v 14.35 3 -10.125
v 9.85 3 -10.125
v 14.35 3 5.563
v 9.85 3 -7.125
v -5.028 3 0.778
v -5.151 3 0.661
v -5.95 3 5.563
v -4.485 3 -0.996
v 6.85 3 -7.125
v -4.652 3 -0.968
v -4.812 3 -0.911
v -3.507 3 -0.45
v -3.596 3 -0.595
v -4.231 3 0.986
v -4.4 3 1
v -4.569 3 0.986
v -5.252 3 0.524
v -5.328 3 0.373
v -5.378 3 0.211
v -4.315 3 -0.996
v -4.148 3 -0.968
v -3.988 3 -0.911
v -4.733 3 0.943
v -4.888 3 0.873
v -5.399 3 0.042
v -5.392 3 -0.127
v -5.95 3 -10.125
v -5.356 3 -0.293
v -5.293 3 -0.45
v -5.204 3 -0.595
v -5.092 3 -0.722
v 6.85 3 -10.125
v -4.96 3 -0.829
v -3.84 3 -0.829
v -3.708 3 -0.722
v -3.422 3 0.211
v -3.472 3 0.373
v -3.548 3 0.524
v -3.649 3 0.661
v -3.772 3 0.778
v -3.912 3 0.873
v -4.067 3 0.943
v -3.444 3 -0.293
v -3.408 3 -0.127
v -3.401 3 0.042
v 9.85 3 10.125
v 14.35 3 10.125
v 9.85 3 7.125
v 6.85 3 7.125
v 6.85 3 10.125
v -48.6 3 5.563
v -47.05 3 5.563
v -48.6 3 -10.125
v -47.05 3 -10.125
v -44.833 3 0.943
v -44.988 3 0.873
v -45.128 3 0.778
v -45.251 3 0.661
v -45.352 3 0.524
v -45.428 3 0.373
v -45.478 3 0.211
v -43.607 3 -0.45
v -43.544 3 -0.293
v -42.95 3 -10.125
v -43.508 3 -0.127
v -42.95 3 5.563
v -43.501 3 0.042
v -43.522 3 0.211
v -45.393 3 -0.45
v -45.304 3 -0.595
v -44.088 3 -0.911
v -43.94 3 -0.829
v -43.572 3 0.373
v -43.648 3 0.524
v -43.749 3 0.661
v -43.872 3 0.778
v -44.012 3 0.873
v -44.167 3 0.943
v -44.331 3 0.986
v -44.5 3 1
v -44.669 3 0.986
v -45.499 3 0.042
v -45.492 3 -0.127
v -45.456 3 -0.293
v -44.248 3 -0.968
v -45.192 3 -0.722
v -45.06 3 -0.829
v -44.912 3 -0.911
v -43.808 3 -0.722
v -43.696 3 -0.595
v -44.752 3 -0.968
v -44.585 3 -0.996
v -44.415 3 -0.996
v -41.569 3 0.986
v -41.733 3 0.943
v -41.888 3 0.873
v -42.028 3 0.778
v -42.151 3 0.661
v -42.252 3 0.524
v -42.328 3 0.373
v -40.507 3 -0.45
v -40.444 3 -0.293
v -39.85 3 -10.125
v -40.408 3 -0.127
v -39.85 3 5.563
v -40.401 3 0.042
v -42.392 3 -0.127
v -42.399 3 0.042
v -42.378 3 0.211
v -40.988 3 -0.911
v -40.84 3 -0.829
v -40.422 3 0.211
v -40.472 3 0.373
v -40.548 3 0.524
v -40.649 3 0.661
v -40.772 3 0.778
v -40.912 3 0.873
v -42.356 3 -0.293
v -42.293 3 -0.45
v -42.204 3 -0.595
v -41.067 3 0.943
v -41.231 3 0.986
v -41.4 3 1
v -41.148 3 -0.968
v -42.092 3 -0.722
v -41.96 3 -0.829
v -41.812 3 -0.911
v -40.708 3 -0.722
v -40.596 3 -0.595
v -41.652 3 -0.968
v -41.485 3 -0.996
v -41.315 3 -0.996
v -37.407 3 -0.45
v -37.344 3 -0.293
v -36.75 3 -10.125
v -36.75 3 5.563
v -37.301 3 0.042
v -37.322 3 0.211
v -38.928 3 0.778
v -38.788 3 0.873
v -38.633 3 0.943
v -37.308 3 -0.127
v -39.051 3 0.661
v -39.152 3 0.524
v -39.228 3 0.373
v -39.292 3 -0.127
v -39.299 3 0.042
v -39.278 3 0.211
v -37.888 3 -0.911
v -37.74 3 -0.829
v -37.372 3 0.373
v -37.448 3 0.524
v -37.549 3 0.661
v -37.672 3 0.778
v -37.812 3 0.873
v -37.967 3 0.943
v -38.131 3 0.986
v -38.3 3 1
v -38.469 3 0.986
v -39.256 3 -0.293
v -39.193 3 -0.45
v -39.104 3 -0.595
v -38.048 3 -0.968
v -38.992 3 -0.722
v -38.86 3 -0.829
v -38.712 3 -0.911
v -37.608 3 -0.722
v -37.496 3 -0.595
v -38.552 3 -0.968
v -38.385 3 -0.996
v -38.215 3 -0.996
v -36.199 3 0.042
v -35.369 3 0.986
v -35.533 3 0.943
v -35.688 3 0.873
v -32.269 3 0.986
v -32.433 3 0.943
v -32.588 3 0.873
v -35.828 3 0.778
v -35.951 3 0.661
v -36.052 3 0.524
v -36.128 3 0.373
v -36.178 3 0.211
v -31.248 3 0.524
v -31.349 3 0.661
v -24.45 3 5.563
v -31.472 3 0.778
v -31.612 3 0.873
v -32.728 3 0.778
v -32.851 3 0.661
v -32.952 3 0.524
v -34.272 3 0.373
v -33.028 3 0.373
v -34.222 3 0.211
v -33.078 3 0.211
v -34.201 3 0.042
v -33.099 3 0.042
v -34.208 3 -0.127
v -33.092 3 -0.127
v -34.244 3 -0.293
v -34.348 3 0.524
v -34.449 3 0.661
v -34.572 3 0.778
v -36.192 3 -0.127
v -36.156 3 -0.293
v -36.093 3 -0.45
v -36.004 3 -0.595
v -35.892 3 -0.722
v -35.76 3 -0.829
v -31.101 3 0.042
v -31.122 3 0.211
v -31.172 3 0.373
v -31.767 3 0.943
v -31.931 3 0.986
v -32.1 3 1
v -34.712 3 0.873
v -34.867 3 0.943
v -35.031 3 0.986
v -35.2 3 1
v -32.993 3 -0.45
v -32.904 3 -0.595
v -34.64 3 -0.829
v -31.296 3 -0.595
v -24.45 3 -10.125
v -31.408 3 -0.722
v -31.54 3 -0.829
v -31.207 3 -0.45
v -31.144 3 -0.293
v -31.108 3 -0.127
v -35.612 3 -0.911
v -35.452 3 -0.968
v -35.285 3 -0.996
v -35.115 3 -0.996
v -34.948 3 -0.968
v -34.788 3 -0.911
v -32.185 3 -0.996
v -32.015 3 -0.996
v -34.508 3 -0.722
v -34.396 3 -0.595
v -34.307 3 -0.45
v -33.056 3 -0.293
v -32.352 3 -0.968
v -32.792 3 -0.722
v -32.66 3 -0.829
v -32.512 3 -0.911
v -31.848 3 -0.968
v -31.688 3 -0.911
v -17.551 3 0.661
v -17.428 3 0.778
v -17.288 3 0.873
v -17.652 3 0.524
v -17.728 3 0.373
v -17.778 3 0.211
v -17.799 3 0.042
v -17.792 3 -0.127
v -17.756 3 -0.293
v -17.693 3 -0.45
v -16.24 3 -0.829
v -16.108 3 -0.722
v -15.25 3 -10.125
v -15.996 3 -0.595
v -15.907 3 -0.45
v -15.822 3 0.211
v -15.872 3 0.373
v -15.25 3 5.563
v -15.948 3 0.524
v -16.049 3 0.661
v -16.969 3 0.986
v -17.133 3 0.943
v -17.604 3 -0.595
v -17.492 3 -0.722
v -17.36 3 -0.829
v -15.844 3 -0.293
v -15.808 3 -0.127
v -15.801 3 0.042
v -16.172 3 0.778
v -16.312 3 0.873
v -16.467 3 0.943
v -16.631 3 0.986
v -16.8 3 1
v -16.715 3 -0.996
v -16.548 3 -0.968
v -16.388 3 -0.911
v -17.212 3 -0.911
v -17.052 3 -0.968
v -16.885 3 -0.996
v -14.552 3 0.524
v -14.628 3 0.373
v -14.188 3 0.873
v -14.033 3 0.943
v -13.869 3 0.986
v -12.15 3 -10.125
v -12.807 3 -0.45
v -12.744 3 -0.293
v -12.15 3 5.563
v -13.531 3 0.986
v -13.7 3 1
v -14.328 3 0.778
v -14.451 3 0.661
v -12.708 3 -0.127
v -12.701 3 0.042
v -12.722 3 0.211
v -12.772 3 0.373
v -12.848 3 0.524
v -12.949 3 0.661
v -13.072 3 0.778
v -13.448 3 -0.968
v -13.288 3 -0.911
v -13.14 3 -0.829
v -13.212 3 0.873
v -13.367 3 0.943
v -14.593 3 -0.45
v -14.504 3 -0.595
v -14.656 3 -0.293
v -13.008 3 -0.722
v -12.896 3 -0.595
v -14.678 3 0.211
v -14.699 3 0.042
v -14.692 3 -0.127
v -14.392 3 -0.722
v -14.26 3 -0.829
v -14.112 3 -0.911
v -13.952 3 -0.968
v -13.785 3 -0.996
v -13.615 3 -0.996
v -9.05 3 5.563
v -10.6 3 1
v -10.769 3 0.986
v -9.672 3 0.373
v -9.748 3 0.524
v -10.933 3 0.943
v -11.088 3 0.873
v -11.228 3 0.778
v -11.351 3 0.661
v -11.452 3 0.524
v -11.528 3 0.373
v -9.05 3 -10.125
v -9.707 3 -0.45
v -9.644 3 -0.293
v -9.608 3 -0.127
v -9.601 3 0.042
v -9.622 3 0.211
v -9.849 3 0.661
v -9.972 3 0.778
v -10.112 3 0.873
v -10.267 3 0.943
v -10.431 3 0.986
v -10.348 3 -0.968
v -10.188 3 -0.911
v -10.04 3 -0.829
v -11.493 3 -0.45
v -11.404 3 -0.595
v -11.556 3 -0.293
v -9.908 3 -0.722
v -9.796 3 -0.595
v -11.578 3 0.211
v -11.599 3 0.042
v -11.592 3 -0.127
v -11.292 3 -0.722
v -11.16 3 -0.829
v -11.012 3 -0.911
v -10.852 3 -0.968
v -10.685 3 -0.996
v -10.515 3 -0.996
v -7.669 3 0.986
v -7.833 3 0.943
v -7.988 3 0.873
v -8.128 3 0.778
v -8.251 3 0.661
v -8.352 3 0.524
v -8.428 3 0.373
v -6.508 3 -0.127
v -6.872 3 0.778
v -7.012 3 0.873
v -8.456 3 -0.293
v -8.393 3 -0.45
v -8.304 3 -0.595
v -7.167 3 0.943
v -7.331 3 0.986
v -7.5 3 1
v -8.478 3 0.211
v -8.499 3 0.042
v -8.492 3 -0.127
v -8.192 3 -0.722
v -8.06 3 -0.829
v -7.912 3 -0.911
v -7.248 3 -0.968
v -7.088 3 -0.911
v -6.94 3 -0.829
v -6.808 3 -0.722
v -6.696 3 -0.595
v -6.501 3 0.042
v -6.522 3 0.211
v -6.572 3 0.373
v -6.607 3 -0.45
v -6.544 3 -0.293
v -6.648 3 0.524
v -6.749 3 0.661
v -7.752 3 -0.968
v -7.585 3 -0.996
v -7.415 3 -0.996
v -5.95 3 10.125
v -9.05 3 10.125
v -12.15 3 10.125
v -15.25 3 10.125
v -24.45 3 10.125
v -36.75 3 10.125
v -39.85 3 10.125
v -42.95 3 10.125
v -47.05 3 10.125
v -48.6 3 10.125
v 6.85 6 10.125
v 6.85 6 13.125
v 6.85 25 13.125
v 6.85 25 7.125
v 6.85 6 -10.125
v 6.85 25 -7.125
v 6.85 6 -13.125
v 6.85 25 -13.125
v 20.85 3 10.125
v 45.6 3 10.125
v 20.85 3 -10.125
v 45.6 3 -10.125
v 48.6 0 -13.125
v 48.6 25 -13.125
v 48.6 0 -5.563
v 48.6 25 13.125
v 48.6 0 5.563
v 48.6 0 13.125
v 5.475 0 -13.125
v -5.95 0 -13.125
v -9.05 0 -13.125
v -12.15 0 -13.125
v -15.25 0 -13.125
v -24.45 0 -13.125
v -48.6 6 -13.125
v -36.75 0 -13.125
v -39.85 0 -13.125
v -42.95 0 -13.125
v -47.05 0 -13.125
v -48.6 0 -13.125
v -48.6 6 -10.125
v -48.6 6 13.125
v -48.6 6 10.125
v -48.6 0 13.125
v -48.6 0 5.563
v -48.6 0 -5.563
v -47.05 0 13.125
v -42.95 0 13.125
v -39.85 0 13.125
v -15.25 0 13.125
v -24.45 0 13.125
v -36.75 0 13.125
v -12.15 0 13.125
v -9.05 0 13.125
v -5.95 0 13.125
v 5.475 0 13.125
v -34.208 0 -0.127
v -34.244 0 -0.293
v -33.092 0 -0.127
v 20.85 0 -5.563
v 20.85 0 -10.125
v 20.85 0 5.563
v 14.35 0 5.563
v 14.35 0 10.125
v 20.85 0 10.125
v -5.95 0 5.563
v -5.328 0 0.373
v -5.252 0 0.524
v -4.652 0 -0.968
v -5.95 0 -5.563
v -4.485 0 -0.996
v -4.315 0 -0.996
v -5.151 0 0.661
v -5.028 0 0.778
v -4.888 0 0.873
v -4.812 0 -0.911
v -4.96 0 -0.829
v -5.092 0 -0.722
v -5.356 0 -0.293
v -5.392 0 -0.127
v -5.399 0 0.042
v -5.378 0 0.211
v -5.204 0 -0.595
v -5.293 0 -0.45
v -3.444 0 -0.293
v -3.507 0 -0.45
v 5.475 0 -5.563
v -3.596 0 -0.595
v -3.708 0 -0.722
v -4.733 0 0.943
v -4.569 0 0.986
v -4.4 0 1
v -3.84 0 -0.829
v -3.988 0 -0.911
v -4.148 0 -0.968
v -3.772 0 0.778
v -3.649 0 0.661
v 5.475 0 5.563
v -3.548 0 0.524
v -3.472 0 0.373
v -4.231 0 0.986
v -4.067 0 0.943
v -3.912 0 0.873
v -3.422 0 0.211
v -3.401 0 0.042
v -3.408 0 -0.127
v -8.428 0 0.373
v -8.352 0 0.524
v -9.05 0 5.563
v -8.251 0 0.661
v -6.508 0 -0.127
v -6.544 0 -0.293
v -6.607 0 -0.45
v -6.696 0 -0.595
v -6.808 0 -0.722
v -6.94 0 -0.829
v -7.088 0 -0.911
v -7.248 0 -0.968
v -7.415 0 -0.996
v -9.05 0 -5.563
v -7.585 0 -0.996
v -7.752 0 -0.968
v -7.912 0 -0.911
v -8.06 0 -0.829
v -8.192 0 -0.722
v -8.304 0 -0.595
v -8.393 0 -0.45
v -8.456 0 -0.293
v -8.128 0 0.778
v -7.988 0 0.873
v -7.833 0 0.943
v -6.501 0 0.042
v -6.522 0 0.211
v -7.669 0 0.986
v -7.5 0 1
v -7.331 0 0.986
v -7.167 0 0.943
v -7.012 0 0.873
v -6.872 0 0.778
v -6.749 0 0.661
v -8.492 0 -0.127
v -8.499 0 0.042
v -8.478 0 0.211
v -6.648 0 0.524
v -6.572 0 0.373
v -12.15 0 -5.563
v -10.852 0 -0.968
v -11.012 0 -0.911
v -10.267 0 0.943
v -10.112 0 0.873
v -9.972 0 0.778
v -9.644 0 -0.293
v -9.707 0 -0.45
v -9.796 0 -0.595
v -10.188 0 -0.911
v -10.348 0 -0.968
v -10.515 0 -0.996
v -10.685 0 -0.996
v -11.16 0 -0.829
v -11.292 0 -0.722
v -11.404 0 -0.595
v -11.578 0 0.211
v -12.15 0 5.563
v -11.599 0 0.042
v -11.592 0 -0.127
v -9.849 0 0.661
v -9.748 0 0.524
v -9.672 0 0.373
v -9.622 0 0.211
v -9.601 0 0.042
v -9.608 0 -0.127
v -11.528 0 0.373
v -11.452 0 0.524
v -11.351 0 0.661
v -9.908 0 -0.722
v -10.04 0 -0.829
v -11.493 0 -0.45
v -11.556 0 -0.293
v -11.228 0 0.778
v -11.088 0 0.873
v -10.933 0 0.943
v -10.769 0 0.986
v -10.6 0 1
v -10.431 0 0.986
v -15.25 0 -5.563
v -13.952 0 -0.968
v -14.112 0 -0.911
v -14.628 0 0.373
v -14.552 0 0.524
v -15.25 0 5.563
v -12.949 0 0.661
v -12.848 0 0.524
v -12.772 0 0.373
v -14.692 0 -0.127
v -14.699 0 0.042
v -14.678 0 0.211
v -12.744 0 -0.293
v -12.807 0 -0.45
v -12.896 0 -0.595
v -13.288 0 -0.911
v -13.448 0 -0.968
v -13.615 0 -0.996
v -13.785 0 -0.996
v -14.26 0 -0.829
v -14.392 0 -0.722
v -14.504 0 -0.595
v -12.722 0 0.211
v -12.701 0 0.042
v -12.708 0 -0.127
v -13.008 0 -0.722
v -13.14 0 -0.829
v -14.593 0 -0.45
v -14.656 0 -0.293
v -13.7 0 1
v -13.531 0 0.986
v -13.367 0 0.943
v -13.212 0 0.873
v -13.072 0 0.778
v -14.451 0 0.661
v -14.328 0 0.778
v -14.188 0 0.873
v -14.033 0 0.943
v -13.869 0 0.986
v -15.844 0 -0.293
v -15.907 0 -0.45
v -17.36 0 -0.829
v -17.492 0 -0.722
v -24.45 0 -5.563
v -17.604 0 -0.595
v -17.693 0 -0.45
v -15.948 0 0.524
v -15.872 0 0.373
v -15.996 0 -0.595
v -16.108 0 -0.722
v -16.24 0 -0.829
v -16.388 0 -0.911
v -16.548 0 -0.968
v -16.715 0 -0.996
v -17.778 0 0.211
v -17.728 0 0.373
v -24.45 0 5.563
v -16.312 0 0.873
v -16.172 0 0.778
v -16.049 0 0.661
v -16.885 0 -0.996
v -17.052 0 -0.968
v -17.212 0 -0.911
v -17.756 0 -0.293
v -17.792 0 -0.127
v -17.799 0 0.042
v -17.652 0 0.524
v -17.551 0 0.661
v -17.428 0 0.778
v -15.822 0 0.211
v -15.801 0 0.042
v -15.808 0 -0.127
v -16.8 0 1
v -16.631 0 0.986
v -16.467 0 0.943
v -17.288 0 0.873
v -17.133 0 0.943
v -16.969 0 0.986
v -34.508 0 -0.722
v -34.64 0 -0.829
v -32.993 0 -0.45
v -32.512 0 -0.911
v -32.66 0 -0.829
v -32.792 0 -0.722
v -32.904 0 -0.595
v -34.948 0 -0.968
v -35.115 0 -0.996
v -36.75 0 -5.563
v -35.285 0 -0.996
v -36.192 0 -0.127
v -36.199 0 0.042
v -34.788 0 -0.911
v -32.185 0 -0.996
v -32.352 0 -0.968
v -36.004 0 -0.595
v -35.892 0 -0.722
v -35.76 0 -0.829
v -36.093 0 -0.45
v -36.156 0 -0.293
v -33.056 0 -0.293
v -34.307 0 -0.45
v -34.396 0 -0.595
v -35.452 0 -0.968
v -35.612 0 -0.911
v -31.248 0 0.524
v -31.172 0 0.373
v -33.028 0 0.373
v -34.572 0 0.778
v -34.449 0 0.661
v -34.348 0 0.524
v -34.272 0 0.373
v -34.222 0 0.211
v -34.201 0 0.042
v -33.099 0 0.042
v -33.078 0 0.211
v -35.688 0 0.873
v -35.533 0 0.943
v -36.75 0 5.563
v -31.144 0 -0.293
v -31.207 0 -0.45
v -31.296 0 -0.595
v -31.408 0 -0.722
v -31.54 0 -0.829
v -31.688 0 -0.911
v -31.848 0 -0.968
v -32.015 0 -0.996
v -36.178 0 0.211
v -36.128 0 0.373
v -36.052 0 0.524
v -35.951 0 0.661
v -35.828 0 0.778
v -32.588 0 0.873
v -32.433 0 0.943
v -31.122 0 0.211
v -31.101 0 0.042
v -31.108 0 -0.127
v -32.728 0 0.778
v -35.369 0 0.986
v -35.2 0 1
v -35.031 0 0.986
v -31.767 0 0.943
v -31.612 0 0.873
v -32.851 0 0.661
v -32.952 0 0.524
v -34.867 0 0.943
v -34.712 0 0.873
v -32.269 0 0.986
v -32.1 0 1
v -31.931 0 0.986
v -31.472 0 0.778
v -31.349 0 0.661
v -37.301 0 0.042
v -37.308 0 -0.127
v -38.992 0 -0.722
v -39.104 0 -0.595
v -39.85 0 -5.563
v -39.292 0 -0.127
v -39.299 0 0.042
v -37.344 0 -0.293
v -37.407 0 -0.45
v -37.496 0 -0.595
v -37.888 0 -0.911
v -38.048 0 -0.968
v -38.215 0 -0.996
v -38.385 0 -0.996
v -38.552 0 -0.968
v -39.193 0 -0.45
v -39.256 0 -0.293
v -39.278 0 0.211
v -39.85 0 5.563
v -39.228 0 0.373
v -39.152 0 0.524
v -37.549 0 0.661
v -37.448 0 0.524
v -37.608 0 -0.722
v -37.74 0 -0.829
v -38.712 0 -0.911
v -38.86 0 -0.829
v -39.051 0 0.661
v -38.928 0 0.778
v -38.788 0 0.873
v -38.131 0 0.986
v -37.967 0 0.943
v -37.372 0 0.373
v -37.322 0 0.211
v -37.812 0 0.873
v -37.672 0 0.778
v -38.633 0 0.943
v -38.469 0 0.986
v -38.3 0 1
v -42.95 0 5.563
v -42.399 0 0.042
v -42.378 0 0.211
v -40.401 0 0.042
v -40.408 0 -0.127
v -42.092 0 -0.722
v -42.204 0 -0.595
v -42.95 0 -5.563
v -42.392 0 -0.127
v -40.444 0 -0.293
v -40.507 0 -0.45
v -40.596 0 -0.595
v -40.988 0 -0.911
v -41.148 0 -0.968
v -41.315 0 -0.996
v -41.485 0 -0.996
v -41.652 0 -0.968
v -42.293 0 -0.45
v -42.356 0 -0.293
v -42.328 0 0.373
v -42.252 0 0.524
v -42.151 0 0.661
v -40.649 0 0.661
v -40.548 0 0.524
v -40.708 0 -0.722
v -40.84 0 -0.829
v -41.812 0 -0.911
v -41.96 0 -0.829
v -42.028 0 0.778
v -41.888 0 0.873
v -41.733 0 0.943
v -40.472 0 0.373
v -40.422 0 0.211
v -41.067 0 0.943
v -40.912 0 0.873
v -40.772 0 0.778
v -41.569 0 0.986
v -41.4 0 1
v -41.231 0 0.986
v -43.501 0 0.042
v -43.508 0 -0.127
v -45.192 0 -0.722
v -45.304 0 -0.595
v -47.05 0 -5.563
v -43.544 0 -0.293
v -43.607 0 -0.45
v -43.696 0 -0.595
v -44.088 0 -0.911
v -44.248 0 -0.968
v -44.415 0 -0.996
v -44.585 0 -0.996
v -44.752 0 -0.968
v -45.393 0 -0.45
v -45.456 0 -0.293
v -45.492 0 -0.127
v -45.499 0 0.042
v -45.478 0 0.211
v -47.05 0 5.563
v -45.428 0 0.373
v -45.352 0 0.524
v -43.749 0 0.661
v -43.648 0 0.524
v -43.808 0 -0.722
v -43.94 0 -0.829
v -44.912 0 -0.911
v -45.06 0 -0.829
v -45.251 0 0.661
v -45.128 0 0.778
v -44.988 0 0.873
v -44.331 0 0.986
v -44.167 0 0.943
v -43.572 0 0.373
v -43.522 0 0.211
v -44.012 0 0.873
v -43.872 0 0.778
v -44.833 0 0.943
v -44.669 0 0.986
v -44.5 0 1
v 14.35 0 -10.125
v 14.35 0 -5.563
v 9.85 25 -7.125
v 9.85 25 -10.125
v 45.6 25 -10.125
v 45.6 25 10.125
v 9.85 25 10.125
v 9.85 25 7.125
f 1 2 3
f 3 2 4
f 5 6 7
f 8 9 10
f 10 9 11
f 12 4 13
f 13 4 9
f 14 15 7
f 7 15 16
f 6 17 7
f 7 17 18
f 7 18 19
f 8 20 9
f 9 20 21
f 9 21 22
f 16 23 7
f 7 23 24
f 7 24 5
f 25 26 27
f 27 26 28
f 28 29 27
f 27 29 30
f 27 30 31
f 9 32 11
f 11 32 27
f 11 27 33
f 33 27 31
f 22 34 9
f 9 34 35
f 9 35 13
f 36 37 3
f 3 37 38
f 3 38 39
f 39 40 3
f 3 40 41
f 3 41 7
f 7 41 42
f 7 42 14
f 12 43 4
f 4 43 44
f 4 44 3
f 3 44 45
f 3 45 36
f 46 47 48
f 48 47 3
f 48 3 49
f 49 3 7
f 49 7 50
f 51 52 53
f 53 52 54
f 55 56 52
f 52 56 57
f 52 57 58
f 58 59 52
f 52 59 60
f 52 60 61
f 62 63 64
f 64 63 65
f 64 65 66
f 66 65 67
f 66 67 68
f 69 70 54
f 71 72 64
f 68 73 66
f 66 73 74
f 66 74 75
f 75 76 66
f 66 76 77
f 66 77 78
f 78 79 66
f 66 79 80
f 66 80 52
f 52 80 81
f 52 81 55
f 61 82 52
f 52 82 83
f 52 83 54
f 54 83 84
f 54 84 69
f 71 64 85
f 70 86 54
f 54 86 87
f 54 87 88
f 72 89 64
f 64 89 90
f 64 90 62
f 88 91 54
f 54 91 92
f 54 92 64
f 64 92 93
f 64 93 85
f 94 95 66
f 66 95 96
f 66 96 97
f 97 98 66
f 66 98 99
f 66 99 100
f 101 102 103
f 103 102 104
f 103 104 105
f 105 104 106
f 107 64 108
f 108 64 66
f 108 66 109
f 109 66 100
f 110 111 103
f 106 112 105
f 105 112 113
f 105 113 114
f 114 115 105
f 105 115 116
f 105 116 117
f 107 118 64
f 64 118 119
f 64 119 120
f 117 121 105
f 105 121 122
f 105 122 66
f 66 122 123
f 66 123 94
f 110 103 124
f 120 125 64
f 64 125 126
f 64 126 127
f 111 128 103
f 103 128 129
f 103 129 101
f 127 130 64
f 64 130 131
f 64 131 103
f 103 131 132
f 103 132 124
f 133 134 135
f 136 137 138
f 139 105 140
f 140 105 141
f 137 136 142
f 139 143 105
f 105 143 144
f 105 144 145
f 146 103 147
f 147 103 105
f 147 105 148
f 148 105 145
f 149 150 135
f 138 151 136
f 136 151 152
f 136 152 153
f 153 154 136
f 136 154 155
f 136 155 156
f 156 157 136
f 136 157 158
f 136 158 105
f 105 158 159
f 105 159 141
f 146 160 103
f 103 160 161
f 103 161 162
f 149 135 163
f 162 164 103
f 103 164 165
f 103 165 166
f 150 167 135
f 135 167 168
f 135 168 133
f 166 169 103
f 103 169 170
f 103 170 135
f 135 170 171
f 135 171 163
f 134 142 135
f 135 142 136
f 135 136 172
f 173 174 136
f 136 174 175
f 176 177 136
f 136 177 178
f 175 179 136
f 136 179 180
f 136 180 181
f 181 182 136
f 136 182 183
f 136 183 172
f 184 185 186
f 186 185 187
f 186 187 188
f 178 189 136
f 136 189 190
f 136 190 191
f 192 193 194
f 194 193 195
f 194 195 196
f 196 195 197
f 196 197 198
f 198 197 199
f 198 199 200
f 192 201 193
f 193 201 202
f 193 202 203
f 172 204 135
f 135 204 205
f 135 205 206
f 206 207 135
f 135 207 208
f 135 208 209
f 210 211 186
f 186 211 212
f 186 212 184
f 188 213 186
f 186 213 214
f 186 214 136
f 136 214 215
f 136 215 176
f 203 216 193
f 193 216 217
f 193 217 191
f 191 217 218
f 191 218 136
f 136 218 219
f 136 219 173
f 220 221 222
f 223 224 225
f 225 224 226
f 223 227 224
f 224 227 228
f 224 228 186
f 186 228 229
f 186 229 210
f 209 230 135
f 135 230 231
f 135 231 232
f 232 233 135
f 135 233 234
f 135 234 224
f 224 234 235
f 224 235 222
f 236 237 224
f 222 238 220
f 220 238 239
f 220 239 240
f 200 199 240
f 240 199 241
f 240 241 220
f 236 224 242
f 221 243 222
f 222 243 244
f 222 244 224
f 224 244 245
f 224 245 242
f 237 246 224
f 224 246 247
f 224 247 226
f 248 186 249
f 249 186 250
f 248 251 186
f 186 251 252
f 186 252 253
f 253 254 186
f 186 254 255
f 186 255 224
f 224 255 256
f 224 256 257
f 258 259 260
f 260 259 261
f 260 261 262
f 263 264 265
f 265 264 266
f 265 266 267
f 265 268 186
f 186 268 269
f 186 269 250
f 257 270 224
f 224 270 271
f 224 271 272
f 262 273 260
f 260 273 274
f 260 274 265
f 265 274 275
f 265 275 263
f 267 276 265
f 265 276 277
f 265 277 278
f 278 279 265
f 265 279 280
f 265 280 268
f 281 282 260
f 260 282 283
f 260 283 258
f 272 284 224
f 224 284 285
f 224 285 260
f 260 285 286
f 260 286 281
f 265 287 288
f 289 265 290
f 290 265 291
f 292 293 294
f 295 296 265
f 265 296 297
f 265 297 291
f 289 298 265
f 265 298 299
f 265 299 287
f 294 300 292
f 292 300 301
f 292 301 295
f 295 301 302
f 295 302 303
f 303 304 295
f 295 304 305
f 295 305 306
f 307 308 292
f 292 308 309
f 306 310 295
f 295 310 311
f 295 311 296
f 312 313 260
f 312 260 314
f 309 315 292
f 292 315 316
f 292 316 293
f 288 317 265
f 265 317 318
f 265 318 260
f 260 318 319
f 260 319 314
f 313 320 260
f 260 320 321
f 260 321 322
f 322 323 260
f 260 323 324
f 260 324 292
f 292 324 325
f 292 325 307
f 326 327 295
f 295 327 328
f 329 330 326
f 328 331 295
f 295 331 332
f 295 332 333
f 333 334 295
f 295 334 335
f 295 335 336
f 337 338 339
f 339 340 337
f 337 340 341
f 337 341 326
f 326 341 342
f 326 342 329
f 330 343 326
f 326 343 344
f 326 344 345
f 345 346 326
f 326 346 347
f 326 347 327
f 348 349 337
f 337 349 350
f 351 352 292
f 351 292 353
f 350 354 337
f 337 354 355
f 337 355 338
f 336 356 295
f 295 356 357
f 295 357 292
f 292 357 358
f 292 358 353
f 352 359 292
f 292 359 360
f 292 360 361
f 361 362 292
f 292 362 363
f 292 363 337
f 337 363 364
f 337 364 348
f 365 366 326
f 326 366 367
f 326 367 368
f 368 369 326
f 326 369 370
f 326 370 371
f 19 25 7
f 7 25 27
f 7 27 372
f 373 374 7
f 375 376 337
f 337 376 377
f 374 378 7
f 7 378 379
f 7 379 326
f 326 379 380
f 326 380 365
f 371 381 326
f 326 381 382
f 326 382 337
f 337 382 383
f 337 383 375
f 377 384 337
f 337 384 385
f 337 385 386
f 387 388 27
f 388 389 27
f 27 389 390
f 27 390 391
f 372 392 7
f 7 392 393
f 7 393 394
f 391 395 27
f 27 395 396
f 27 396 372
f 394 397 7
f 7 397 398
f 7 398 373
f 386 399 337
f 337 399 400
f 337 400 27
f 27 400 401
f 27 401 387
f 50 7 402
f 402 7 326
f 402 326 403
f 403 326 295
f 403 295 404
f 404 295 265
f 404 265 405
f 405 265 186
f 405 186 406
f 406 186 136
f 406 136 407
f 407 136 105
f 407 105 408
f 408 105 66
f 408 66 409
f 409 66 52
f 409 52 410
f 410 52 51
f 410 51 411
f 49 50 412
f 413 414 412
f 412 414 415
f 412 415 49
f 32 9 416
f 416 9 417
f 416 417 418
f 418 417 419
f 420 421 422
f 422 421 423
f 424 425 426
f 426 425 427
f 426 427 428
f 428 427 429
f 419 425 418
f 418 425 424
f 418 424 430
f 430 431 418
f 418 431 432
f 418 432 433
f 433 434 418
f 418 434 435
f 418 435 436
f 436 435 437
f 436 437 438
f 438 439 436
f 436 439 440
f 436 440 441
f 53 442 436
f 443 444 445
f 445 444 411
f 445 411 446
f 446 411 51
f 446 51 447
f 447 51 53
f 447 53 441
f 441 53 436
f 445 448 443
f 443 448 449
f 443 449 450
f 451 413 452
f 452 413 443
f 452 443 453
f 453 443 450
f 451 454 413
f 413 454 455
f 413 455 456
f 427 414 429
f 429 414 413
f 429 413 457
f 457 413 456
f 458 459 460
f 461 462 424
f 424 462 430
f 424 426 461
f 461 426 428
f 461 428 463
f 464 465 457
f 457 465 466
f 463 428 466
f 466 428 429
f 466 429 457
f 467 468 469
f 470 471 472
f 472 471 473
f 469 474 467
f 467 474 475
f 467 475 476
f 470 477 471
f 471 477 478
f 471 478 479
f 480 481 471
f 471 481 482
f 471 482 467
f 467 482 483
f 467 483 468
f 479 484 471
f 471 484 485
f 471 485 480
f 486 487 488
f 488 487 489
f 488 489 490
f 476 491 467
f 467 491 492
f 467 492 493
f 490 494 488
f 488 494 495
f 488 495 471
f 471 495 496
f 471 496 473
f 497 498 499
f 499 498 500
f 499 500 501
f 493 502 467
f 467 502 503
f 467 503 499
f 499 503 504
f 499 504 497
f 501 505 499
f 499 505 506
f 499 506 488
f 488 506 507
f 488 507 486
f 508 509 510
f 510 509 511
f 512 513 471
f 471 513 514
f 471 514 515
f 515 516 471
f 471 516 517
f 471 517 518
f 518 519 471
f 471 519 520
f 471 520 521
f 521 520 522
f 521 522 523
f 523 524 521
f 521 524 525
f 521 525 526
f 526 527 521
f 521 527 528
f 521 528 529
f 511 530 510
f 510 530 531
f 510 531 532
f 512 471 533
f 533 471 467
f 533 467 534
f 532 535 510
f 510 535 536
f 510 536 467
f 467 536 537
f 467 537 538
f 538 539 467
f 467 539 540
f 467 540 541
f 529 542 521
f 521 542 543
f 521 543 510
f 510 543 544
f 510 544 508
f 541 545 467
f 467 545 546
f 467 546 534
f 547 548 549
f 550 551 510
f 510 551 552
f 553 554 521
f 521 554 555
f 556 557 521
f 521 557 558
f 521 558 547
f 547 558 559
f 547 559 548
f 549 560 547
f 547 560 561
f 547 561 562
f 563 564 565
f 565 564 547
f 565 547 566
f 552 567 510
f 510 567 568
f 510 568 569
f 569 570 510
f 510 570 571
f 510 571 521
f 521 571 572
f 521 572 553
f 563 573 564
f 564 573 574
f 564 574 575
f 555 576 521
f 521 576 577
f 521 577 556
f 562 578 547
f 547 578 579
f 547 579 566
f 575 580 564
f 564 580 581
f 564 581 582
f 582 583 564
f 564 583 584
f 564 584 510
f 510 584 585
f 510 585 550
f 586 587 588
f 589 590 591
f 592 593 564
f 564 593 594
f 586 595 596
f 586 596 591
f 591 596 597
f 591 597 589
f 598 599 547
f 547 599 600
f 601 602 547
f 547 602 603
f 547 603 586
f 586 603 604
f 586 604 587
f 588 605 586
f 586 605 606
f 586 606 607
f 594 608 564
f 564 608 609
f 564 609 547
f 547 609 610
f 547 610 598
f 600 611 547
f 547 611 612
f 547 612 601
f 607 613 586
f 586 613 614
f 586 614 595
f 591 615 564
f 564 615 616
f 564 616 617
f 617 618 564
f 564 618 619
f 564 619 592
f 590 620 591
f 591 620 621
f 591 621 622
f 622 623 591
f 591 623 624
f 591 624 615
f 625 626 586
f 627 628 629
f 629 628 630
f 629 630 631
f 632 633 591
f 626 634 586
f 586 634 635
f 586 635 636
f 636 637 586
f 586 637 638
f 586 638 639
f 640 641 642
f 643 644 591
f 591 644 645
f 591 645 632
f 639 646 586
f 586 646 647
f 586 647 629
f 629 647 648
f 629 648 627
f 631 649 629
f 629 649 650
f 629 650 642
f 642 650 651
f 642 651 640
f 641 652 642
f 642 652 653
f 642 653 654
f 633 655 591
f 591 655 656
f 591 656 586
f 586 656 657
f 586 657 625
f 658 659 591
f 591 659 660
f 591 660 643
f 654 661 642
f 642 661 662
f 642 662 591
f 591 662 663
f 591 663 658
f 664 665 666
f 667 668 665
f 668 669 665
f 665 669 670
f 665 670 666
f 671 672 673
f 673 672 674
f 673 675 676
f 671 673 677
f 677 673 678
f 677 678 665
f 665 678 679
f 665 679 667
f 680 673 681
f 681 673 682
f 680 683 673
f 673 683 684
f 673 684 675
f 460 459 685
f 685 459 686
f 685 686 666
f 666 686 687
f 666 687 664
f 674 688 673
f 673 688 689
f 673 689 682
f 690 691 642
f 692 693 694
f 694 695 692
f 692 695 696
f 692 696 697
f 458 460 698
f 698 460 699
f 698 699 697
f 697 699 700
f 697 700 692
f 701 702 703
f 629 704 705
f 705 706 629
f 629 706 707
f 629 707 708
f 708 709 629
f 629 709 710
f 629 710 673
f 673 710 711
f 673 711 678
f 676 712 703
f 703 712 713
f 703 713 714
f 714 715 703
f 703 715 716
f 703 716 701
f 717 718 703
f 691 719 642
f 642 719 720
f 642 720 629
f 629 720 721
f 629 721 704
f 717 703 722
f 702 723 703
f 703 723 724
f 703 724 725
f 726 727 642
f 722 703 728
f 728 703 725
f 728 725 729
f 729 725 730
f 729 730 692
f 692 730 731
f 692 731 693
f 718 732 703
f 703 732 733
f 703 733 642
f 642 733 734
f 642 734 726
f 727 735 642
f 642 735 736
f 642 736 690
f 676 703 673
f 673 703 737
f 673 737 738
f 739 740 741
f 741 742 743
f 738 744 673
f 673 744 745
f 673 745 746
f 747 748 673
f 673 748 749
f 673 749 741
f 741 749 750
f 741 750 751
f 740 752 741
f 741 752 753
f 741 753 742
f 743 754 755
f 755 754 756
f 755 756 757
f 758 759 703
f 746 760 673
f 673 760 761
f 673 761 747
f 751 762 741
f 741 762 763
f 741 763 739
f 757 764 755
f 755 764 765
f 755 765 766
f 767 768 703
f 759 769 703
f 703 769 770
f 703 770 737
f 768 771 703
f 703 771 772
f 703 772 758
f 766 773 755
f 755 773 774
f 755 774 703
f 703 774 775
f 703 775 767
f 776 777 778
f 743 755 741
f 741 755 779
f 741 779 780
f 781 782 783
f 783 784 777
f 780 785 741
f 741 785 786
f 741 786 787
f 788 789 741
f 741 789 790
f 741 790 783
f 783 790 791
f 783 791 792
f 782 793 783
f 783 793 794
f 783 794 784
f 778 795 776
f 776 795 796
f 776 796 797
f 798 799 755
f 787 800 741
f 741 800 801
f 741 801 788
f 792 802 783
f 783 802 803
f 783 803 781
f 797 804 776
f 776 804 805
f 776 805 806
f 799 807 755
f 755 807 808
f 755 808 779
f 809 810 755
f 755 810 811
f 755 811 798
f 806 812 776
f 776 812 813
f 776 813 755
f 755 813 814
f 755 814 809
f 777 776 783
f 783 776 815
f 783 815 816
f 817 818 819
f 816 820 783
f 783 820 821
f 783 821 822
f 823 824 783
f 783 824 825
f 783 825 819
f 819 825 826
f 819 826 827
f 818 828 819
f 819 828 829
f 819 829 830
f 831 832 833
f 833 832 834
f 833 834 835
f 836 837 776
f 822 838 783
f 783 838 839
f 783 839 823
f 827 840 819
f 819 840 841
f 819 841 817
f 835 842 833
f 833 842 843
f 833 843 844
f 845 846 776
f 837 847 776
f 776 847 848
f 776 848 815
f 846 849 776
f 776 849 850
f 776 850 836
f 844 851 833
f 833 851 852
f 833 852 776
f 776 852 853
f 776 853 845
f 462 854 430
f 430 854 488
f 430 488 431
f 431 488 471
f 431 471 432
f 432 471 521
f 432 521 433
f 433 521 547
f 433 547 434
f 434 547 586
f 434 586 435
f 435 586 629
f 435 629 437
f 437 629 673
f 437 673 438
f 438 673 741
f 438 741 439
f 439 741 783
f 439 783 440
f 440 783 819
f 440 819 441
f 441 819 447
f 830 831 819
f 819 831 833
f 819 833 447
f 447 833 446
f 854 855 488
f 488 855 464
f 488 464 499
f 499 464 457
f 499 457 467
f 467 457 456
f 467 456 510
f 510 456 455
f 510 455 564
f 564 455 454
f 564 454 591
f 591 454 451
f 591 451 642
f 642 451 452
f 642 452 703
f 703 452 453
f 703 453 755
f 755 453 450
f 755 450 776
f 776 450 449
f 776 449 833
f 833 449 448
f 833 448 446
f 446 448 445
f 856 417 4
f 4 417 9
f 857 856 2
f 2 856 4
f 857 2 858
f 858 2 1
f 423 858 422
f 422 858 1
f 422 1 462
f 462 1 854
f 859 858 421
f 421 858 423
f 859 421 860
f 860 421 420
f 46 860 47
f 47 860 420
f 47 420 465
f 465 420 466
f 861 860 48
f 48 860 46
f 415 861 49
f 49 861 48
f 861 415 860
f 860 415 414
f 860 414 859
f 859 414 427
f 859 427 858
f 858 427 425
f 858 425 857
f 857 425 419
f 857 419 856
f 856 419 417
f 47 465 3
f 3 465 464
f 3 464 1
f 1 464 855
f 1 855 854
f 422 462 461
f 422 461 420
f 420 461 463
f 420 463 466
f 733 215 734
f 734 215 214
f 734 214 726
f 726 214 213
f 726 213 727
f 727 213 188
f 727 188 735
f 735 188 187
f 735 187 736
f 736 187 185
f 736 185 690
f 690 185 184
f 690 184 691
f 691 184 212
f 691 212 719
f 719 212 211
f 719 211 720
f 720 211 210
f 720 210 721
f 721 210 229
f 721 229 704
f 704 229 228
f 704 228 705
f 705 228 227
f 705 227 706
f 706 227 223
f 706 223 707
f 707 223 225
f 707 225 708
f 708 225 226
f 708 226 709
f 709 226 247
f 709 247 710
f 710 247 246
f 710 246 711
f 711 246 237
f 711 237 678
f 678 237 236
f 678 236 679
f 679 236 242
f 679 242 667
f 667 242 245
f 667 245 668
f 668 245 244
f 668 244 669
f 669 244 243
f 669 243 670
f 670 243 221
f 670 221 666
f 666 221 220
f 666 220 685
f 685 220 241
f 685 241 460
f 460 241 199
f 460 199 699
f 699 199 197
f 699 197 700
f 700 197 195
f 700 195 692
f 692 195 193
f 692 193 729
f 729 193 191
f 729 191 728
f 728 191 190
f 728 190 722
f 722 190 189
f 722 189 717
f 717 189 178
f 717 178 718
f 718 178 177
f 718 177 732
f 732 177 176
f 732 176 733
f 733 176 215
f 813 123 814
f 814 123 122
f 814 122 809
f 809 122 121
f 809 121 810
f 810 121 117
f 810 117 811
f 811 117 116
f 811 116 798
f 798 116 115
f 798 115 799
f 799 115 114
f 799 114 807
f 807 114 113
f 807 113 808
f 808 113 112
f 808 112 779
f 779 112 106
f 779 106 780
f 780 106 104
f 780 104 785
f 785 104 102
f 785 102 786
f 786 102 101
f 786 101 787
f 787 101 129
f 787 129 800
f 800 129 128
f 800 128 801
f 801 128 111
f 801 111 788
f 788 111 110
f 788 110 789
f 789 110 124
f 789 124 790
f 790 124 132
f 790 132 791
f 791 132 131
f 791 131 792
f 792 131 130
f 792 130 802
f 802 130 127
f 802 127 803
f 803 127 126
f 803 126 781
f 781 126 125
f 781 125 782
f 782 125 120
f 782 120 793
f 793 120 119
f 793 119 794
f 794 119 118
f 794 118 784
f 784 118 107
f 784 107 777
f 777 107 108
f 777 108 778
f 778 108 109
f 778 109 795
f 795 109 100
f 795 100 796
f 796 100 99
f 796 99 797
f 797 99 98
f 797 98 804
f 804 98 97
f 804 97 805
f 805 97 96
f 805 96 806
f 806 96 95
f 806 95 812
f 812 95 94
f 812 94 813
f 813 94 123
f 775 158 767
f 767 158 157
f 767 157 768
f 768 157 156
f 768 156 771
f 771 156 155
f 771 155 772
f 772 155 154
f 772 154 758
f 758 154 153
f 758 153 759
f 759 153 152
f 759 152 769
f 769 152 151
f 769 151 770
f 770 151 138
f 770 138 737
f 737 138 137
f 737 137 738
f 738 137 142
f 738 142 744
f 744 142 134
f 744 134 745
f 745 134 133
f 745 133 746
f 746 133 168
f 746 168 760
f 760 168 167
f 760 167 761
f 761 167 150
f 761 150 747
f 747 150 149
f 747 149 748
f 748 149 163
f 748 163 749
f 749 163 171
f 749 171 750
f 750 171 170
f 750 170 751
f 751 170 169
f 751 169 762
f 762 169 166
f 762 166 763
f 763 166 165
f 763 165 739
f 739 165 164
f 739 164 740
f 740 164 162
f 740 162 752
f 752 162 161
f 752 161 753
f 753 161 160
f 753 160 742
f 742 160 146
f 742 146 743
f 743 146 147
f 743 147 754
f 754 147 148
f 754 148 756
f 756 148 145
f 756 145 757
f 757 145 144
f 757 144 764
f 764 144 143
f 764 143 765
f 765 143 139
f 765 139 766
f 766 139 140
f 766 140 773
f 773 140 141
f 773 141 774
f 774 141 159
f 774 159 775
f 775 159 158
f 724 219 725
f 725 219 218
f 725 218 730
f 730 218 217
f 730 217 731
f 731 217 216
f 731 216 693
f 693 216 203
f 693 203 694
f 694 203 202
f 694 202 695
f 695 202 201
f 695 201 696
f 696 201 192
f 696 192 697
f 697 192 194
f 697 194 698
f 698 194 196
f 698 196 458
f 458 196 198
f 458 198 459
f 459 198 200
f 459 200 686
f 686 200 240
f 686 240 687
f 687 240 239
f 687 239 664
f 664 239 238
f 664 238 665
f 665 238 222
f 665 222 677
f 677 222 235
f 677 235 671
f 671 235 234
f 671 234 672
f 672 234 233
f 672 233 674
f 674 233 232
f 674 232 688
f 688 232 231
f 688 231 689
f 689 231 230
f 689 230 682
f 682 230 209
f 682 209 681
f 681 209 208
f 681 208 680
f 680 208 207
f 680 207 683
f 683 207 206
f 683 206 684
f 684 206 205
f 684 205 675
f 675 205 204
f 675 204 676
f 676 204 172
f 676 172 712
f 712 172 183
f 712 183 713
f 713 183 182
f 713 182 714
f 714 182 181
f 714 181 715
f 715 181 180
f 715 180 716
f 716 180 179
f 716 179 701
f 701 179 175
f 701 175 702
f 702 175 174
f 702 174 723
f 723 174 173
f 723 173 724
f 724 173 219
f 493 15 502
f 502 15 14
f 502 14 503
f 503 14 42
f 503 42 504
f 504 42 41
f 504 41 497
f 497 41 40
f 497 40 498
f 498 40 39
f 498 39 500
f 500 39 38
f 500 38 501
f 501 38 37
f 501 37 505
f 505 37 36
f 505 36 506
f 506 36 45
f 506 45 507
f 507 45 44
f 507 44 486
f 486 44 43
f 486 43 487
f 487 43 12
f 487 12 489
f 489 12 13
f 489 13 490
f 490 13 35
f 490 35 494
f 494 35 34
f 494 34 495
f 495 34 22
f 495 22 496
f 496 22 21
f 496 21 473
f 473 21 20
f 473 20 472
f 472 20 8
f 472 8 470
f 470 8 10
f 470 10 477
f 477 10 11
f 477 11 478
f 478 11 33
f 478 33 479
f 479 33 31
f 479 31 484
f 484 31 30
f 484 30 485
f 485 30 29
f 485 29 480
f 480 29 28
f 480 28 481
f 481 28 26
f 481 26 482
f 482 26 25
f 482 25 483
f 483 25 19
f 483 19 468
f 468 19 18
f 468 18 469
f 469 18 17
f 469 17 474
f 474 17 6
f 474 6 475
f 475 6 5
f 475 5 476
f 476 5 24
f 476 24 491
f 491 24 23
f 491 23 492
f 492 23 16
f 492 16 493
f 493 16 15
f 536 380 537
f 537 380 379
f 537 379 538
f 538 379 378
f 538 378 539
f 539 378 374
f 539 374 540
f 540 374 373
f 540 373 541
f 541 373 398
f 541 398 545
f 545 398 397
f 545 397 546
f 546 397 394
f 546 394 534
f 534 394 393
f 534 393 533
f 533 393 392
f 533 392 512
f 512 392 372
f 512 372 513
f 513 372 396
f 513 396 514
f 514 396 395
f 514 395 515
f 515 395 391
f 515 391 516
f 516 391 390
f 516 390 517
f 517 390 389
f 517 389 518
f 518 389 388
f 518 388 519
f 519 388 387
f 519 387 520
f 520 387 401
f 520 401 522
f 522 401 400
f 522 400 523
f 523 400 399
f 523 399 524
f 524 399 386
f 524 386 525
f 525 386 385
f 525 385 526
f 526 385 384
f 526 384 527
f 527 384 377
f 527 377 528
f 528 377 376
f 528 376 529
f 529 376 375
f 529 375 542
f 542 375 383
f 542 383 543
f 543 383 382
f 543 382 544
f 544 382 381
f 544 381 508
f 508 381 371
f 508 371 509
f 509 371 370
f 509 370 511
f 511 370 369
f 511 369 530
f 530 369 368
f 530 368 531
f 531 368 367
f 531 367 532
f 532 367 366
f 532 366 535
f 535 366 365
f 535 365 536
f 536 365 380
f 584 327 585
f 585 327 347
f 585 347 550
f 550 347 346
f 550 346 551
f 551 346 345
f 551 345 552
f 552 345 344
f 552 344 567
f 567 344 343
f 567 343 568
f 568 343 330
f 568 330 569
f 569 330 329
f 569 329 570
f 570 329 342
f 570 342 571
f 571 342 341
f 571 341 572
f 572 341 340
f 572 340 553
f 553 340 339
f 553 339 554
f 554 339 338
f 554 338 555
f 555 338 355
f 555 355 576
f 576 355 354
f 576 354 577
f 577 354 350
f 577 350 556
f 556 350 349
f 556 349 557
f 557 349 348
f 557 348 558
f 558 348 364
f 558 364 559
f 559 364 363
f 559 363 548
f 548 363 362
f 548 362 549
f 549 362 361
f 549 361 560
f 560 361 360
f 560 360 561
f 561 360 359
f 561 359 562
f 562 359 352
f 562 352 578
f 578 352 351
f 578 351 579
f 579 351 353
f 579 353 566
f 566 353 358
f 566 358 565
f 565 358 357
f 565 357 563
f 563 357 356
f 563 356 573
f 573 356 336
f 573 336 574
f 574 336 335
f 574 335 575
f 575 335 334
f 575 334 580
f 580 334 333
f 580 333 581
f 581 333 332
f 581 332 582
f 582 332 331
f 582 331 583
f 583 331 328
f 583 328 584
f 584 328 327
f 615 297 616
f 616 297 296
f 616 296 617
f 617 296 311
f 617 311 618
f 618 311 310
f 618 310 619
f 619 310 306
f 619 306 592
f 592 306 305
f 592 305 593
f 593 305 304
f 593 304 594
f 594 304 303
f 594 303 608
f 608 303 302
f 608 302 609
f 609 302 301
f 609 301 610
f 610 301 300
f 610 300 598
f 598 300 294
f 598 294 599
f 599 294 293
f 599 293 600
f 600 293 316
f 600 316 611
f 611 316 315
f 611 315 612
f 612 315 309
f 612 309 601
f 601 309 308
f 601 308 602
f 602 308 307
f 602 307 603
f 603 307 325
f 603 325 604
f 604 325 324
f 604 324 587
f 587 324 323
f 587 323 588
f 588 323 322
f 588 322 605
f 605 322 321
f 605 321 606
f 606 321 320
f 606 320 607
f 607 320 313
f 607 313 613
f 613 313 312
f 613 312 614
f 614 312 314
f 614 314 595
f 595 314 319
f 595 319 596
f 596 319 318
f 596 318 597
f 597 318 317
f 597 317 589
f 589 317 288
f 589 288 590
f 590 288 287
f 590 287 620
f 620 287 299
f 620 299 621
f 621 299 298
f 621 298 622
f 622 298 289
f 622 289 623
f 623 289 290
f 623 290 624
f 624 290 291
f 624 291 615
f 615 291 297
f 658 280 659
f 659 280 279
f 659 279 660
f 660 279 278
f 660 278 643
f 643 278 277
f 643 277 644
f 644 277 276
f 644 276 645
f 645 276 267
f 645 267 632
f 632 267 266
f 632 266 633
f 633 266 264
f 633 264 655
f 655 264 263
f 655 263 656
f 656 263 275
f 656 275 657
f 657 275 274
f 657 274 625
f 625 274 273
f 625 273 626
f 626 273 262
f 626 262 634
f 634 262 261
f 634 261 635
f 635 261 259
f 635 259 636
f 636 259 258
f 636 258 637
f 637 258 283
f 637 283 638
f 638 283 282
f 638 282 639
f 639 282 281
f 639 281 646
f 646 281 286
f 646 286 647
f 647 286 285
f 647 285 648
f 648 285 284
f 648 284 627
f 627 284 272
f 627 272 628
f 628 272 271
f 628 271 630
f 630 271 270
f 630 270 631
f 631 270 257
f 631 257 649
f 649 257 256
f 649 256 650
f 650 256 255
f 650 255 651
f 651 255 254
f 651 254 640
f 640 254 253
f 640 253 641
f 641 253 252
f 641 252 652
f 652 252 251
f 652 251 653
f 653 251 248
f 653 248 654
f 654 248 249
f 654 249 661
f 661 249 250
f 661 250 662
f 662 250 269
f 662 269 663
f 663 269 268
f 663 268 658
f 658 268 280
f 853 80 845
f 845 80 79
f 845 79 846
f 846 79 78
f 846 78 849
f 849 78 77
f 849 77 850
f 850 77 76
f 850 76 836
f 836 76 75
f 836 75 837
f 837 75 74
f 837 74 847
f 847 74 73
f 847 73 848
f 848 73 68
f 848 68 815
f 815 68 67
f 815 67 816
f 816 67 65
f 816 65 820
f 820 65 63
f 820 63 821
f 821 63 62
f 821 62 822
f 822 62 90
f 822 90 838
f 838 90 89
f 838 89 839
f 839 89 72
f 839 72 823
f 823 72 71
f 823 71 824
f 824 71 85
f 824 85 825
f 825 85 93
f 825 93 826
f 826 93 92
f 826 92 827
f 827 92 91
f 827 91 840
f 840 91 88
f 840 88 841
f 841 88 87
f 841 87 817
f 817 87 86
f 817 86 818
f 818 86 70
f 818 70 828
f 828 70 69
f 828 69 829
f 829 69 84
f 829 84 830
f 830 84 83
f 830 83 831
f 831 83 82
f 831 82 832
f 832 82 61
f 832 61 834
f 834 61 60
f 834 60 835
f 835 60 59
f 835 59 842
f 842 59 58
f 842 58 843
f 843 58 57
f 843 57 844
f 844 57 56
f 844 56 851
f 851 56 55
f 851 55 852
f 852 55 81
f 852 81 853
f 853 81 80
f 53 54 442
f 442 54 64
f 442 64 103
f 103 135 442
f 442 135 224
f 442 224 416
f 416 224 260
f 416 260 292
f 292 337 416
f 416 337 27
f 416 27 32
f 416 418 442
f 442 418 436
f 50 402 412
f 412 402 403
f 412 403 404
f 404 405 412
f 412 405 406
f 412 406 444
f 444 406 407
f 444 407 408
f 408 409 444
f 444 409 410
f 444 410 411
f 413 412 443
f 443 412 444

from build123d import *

# Parameters (mm, degrees)
SKETCH1_W           = 97.2
SKETCH1_H           = 26.25
BOSS_EXTRUDE1_DEPTH = 3
BOSS_EXTRUDE2_DEPTH = 22
SKETCH3_W           = 6.5
SKETCH3_H           = 20.25
CUT_EXTRUDE1_DEPTH  = 4
SKETCH5_R           = 1
CUT_EXTRUDE2_DEPTH  = 4
SKETCH6_W           = 55.45
SKETCH6_H           = 3
BOSS_EXTRUDE3_DEPTH = 3


with BuildPart() as part:
    # Sketch1 → Boss-Extrude1 (new body)
    with BuildSketch(Plane(origin=(0, 0, 0), x_dir=(1, 0, 0), z_dir=(0, 1, 0))):
        Rectangle(SKETCH1_W, SKETCH1_H)
    extrude(amount=BOSS_EXTRUDE1_DEPTH)

    # Sketch2 → Boss-Extrude2 (add)
    with BuildSketch(Plane(origin=(0, 3, 0), x_dir=(1, 0, 0), z_dir=(0, 1, 0))):
        Polygon((48.6, -13.125), (9.85, -13.125), (6.85, -13.125), (6.85, -7.125), (9.85, -7.125), (9.85, -10.125), (45.6, -10.125), (45.6, 10.125), (9.85, 10.125), (9.85, 7.125), (6.85, 7.125), (6.85, 13.125), (9.6, 13.125), (45.6, 13.125), (48.6, 13.125), align=None)
    extrude(amount=BOSS_EXTRUDE2_DEPTH)

    # Sketch3 → Cut-Extrude1 (cut, through all)
    with BuildSketch(Plane(origin=(0, 3, 0), x_dir=(1, 0, 0), z_dir=(0, 1, 0))):
        with Locations((17.6, 0)):
            Rectangle(SKETCH3_W, SKETCH3_H)
    extrude(amount=-CUT_EXTRUDE1_DEPTH, mode=Mode.SUBTRACT)

    # Sketch5 → Cut-Extrude2 (cut, through all)
    with BuildSketch(Plane(origin=(0, 3, 0), x_dir=(1, 0, 0), z_dir=(0, 1, 0))):
        with Locations((-32.1, 0)):
            Circle(SKETCH5_R)
        with Locations((-16.8, 0)):
            Circle(SKETCH5_R)
        with Locations((-13.7, 0)):
            Circle(SKETCH5_R)
        with Locations((-10.6, 0)):
            Circle(SKETCH5_R)
        with Locations((-7.5, 0)):
            Circle(SKETCH5_R)
        with Locations((-4.4, 0)):
            Circle(SKETCH5_R)
        with Locations((-35.2, 0)):
            Circle(SKETCH5_R)
        with Locations((-38.3, 0)):
            Circle(SKETCH5_R)
        with Locations((-41.4, 0)):
            Circle(SKETCH5_R)
        with Locations((-44.5, 0)):
            Circle(SKETCH5_R)
    extrude(amount=-CUT_EXTRUDE2_DEPTH, mode=Mode.SUBTRACT)

    # Sketch6 → Boss-Extrude3 (add)
    with BuildSketch(Plane(origin=(0, 3, 0), x_dir=(1, 0, 0), z_dir=(0, 1, 0))):
        with Locations((-20.875, 11.625)):
            Rectangle(SKETCH6_W, SKETCH6_H)
        with Locations((-20.875, -11.625)):
            Rectangle(SKETCH6_W, SKETCH6_H)
    extrude(amount=BOSS_EXTRUDE3_DEPTH)


solid = part.part
